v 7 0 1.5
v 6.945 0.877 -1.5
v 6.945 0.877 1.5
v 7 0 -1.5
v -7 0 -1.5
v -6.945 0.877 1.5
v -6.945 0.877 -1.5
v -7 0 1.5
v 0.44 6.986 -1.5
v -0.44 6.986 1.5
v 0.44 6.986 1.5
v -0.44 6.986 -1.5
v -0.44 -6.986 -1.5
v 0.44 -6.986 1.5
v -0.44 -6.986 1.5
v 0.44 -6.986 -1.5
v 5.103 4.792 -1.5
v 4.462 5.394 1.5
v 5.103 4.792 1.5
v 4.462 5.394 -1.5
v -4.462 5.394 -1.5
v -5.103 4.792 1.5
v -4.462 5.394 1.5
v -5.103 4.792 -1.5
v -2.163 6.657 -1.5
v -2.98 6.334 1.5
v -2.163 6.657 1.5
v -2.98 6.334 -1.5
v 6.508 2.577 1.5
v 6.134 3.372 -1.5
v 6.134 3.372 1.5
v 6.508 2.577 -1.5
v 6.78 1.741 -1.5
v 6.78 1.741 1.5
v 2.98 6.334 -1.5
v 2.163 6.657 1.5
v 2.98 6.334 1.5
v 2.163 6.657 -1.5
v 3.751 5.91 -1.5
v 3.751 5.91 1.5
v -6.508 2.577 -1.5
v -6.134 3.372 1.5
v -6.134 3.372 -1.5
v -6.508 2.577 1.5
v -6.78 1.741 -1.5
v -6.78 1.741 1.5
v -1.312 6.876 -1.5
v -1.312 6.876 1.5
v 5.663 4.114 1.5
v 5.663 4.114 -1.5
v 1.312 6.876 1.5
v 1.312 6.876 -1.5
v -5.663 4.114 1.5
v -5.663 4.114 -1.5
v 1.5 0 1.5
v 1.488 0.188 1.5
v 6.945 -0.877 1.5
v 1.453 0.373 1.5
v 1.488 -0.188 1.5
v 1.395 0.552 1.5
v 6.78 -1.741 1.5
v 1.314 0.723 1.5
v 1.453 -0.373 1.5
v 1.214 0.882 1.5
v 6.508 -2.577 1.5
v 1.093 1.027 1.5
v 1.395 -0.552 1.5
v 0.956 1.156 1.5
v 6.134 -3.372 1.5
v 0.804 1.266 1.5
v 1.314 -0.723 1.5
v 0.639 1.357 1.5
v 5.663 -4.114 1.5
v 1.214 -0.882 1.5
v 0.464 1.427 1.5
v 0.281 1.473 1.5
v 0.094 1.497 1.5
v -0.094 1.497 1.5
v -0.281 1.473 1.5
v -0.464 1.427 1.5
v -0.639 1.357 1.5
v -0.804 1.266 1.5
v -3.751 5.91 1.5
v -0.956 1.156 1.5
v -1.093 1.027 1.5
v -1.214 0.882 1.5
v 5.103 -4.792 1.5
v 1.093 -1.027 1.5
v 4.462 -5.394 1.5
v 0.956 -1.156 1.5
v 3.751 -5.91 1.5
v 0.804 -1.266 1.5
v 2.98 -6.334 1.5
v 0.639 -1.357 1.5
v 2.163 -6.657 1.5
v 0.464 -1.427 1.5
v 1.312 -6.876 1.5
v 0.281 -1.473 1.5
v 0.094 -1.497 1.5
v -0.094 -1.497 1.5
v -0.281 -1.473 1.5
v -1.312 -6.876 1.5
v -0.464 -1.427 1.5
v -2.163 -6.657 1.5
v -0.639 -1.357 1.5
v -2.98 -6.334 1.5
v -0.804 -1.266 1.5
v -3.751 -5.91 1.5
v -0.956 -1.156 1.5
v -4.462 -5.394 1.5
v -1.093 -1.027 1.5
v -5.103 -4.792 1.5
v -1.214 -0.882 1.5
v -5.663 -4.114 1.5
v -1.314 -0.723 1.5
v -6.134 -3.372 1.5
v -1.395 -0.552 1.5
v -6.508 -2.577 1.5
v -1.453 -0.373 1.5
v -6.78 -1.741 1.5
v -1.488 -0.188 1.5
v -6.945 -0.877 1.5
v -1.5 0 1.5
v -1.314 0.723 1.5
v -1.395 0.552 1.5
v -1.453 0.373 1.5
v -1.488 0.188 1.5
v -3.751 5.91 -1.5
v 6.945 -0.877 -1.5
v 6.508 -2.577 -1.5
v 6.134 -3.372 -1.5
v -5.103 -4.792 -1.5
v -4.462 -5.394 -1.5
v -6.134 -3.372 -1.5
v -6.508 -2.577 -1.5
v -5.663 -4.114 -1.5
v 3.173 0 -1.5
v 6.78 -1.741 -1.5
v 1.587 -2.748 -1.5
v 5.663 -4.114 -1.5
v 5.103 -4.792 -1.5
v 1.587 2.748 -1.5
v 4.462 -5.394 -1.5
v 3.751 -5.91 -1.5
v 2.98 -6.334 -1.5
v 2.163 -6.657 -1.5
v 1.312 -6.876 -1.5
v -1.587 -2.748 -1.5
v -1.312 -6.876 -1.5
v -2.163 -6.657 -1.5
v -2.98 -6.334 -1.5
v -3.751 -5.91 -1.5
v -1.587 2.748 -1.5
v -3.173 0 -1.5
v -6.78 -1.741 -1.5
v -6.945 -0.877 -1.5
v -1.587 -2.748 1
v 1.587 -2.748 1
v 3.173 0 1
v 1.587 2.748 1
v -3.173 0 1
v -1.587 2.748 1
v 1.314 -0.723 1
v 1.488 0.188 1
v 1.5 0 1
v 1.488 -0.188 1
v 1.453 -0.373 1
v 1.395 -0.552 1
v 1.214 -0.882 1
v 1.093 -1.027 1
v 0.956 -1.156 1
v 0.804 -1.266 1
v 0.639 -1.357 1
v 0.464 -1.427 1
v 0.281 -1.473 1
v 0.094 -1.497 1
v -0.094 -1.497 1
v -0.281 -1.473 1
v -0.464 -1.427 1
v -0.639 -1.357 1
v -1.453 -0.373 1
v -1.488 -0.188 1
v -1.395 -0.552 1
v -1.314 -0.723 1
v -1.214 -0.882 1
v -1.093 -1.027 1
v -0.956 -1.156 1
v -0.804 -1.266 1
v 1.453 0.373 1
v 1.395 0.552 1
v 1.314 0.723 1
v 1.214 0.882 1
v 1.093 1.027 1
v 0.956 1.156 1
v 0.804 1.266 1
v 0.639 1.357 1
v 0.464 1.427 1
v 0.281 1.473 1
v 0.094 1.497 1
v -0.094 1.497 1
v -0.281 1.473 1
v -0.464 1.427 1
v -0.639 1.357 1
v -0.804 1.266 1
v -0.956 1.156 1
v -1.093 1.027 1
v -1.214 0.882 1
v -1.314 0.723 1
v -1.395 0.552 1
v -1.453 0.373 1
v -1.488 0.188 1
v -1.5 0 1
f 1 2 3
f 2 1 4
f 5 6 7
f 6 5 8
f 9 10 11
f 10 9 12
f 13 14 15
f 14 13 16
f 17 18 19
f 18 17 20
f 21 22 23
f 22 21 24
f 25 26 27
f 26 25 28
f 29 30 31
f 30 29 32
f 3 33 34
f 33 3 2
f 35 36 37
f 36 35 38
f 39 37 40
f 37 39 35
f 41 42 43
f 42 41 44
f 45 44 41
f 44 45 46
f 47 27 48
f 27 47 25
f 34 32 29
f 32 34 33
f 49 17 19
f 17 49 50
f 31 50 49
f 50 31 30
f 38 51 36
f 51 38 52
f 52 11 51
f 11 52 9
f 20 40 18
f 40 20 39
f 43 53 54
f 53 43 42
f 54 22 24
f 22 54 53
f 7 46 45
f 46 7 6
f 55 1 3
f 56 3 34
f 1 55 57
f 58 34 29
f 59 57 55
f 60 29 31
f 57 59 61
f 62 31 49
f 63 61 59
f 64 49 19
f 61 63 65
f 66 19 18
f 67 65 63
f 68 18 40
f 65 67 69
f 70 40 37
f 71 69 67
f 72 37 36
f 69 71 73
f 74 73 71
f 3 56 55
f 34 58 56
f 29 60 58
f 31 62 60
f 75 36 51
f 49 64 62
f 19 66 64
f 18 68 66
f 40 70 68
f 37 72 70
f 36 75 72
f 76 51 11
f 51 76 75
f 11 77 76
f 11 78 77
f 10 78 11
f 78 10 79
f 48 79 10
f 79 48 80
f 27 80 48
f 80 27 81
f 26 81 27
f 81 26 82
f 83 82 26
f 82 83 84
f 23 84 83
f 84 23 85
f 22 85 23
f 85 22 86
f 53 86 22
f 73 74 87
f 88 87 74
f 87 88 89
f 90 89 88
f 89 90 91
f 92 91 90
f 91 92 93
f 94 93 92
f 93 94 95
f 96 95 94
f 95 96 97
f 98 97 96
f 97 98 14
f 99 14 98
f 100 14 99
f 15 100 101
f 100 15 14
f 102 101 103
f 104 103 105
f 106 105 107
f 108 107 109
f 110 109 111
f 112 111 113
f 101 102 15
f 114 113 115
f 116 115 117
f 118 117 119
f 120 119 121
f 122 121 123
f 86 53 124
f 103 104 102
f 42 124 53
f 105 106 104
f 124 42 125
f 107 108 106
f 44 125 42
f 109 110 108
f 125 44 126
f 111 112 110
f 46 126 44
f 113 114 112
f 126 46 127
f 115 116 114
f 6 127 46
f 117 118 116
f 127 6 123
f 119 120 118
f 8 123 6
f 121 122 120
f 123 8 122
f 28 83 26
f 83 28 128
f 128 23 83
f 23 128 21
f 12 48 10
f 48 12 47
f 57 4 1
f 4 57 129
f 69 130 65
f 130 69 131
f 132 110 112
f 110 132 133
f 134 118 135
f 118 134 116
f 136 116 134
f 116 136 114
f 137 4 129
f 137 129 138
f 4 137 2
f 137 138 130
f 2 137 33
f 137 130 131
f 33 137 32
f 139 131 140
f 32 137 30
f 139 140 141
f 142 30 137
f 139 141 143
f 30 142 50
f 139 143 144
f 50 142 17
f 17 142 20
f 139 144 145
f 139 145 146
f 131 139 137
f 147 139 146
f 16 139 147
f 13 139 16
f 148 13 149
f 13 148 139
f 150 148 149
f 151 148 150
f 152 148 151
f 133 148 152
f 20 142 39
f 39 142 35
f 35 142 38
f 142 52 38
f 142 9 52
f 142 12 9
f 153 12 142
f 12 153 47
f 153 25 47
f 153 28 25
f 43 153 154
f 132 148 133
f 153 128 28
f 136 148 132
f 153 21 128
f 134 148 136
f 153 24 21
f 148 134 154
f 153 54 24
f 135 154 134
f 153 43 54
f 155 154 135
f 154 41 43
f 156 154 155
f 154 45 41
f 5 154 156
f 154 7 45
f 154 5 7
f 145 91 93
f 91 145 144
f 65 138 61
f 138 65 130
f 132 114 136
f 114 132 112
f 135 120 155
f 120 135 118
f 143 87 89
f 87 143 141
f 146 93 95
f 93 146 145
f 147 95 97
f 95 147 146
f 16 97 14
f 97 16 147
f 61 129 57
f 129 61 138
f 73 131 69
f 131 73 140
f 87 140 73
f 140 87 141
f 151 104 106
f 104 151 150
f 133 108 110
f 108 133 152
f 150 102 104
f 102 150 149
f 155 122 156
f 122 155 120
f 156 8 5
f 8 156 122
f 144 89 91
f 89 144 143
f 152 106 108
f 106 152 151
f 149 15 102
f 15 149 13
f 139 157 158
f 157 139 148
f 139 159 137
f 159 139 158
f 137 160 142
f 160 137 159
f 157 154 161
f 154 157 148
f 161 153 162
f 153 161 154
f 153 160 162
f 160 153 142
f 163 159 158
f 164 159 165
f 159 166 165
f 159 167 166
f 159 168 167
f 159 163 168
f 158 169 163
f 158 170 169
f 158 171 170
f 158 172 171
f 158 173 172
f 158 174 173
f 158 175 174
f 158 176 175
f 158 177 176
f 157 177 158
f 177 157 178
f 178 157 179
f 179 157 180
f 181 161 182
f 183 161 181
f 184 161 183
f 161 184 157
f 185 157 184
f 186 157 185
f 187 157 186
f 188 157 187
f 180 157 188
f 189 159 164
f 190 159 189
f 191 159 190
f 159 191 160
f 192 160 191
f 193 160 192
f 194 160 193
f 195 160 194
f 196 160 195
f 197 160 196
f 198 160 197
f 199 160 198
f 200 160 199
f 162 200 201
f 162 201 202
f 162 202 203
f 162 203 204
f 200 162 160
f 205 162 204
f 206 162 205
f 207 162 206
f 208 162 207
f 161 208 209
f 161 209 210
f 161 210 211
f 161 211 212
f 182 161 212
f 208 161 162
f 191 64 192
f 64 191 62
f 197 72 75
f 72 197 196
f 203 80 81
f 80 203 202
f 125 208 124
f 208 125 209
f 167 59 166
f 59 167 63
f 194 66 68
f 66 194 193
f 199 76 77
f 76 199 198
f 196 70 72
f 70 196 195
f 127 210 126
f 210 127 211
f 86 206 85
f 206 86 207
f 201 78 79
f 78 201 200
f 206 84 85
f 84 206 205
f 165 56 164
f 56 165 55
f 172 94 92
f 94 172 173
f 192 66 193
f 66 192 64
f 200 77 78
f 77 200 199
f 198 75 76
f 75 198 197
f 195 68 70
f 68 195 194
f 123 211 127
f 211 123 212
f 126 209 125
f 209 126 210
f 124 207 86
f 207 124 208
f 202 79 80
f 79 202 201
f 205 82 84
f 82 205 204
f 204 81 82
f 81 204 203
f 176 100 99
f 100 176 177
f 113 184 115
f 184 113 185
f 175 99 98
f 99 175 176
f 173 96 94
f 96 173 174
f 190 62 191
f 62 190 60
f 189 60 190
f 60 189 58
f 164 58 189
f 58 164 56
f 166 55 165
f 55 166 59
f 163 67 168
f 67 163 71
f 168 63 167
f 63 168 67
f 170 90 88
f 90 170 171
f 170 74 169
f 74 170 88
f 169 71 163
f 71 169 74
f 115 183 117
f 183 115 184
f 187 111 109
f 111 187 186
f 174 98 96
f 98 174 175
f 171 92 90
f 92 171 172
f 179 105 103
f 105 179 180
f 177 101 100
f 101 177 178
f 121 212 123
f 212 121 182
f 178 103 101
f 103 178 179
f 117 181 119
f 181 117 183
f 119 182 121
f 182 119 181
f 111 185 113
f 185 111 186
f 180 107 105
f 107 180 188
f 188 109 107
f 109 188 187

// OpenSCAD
$fn = 50;


difference() {
	union() {
		translate(v = [0, 0, -1.5000000000]) {
			cylinder(h = 3, r = 7.0000000000);
		}
		translate(v = [0, 0, -1.5000000000]) {
			cylinder(h = 3, r = 3.0000000000);
		}
	}
	union() {
		translate(v = [0, 0, -1.5000000000]) {
			rotate(a = [0, 0, 0]) {
				difference() {
					union() {
						linear_extrude(height = 2.5000000000) {
							polygon(points = [[3.1735000000, 0.0000000000], [1.5867500000, 2.7483316189], [-1.5867500000, 2.7483316189], [-3.1735000000, 0.0000000000], [-1.5867500000, -2.7483316189], [1.5867500000, -2.7483316189]]);
						}
					}
					union();
				}
			}
		}
		translate(v = [0, 0, -50.0000000000]) {
			cylinder(h = 100, r = 1.5000000000);
		}
	}
}
